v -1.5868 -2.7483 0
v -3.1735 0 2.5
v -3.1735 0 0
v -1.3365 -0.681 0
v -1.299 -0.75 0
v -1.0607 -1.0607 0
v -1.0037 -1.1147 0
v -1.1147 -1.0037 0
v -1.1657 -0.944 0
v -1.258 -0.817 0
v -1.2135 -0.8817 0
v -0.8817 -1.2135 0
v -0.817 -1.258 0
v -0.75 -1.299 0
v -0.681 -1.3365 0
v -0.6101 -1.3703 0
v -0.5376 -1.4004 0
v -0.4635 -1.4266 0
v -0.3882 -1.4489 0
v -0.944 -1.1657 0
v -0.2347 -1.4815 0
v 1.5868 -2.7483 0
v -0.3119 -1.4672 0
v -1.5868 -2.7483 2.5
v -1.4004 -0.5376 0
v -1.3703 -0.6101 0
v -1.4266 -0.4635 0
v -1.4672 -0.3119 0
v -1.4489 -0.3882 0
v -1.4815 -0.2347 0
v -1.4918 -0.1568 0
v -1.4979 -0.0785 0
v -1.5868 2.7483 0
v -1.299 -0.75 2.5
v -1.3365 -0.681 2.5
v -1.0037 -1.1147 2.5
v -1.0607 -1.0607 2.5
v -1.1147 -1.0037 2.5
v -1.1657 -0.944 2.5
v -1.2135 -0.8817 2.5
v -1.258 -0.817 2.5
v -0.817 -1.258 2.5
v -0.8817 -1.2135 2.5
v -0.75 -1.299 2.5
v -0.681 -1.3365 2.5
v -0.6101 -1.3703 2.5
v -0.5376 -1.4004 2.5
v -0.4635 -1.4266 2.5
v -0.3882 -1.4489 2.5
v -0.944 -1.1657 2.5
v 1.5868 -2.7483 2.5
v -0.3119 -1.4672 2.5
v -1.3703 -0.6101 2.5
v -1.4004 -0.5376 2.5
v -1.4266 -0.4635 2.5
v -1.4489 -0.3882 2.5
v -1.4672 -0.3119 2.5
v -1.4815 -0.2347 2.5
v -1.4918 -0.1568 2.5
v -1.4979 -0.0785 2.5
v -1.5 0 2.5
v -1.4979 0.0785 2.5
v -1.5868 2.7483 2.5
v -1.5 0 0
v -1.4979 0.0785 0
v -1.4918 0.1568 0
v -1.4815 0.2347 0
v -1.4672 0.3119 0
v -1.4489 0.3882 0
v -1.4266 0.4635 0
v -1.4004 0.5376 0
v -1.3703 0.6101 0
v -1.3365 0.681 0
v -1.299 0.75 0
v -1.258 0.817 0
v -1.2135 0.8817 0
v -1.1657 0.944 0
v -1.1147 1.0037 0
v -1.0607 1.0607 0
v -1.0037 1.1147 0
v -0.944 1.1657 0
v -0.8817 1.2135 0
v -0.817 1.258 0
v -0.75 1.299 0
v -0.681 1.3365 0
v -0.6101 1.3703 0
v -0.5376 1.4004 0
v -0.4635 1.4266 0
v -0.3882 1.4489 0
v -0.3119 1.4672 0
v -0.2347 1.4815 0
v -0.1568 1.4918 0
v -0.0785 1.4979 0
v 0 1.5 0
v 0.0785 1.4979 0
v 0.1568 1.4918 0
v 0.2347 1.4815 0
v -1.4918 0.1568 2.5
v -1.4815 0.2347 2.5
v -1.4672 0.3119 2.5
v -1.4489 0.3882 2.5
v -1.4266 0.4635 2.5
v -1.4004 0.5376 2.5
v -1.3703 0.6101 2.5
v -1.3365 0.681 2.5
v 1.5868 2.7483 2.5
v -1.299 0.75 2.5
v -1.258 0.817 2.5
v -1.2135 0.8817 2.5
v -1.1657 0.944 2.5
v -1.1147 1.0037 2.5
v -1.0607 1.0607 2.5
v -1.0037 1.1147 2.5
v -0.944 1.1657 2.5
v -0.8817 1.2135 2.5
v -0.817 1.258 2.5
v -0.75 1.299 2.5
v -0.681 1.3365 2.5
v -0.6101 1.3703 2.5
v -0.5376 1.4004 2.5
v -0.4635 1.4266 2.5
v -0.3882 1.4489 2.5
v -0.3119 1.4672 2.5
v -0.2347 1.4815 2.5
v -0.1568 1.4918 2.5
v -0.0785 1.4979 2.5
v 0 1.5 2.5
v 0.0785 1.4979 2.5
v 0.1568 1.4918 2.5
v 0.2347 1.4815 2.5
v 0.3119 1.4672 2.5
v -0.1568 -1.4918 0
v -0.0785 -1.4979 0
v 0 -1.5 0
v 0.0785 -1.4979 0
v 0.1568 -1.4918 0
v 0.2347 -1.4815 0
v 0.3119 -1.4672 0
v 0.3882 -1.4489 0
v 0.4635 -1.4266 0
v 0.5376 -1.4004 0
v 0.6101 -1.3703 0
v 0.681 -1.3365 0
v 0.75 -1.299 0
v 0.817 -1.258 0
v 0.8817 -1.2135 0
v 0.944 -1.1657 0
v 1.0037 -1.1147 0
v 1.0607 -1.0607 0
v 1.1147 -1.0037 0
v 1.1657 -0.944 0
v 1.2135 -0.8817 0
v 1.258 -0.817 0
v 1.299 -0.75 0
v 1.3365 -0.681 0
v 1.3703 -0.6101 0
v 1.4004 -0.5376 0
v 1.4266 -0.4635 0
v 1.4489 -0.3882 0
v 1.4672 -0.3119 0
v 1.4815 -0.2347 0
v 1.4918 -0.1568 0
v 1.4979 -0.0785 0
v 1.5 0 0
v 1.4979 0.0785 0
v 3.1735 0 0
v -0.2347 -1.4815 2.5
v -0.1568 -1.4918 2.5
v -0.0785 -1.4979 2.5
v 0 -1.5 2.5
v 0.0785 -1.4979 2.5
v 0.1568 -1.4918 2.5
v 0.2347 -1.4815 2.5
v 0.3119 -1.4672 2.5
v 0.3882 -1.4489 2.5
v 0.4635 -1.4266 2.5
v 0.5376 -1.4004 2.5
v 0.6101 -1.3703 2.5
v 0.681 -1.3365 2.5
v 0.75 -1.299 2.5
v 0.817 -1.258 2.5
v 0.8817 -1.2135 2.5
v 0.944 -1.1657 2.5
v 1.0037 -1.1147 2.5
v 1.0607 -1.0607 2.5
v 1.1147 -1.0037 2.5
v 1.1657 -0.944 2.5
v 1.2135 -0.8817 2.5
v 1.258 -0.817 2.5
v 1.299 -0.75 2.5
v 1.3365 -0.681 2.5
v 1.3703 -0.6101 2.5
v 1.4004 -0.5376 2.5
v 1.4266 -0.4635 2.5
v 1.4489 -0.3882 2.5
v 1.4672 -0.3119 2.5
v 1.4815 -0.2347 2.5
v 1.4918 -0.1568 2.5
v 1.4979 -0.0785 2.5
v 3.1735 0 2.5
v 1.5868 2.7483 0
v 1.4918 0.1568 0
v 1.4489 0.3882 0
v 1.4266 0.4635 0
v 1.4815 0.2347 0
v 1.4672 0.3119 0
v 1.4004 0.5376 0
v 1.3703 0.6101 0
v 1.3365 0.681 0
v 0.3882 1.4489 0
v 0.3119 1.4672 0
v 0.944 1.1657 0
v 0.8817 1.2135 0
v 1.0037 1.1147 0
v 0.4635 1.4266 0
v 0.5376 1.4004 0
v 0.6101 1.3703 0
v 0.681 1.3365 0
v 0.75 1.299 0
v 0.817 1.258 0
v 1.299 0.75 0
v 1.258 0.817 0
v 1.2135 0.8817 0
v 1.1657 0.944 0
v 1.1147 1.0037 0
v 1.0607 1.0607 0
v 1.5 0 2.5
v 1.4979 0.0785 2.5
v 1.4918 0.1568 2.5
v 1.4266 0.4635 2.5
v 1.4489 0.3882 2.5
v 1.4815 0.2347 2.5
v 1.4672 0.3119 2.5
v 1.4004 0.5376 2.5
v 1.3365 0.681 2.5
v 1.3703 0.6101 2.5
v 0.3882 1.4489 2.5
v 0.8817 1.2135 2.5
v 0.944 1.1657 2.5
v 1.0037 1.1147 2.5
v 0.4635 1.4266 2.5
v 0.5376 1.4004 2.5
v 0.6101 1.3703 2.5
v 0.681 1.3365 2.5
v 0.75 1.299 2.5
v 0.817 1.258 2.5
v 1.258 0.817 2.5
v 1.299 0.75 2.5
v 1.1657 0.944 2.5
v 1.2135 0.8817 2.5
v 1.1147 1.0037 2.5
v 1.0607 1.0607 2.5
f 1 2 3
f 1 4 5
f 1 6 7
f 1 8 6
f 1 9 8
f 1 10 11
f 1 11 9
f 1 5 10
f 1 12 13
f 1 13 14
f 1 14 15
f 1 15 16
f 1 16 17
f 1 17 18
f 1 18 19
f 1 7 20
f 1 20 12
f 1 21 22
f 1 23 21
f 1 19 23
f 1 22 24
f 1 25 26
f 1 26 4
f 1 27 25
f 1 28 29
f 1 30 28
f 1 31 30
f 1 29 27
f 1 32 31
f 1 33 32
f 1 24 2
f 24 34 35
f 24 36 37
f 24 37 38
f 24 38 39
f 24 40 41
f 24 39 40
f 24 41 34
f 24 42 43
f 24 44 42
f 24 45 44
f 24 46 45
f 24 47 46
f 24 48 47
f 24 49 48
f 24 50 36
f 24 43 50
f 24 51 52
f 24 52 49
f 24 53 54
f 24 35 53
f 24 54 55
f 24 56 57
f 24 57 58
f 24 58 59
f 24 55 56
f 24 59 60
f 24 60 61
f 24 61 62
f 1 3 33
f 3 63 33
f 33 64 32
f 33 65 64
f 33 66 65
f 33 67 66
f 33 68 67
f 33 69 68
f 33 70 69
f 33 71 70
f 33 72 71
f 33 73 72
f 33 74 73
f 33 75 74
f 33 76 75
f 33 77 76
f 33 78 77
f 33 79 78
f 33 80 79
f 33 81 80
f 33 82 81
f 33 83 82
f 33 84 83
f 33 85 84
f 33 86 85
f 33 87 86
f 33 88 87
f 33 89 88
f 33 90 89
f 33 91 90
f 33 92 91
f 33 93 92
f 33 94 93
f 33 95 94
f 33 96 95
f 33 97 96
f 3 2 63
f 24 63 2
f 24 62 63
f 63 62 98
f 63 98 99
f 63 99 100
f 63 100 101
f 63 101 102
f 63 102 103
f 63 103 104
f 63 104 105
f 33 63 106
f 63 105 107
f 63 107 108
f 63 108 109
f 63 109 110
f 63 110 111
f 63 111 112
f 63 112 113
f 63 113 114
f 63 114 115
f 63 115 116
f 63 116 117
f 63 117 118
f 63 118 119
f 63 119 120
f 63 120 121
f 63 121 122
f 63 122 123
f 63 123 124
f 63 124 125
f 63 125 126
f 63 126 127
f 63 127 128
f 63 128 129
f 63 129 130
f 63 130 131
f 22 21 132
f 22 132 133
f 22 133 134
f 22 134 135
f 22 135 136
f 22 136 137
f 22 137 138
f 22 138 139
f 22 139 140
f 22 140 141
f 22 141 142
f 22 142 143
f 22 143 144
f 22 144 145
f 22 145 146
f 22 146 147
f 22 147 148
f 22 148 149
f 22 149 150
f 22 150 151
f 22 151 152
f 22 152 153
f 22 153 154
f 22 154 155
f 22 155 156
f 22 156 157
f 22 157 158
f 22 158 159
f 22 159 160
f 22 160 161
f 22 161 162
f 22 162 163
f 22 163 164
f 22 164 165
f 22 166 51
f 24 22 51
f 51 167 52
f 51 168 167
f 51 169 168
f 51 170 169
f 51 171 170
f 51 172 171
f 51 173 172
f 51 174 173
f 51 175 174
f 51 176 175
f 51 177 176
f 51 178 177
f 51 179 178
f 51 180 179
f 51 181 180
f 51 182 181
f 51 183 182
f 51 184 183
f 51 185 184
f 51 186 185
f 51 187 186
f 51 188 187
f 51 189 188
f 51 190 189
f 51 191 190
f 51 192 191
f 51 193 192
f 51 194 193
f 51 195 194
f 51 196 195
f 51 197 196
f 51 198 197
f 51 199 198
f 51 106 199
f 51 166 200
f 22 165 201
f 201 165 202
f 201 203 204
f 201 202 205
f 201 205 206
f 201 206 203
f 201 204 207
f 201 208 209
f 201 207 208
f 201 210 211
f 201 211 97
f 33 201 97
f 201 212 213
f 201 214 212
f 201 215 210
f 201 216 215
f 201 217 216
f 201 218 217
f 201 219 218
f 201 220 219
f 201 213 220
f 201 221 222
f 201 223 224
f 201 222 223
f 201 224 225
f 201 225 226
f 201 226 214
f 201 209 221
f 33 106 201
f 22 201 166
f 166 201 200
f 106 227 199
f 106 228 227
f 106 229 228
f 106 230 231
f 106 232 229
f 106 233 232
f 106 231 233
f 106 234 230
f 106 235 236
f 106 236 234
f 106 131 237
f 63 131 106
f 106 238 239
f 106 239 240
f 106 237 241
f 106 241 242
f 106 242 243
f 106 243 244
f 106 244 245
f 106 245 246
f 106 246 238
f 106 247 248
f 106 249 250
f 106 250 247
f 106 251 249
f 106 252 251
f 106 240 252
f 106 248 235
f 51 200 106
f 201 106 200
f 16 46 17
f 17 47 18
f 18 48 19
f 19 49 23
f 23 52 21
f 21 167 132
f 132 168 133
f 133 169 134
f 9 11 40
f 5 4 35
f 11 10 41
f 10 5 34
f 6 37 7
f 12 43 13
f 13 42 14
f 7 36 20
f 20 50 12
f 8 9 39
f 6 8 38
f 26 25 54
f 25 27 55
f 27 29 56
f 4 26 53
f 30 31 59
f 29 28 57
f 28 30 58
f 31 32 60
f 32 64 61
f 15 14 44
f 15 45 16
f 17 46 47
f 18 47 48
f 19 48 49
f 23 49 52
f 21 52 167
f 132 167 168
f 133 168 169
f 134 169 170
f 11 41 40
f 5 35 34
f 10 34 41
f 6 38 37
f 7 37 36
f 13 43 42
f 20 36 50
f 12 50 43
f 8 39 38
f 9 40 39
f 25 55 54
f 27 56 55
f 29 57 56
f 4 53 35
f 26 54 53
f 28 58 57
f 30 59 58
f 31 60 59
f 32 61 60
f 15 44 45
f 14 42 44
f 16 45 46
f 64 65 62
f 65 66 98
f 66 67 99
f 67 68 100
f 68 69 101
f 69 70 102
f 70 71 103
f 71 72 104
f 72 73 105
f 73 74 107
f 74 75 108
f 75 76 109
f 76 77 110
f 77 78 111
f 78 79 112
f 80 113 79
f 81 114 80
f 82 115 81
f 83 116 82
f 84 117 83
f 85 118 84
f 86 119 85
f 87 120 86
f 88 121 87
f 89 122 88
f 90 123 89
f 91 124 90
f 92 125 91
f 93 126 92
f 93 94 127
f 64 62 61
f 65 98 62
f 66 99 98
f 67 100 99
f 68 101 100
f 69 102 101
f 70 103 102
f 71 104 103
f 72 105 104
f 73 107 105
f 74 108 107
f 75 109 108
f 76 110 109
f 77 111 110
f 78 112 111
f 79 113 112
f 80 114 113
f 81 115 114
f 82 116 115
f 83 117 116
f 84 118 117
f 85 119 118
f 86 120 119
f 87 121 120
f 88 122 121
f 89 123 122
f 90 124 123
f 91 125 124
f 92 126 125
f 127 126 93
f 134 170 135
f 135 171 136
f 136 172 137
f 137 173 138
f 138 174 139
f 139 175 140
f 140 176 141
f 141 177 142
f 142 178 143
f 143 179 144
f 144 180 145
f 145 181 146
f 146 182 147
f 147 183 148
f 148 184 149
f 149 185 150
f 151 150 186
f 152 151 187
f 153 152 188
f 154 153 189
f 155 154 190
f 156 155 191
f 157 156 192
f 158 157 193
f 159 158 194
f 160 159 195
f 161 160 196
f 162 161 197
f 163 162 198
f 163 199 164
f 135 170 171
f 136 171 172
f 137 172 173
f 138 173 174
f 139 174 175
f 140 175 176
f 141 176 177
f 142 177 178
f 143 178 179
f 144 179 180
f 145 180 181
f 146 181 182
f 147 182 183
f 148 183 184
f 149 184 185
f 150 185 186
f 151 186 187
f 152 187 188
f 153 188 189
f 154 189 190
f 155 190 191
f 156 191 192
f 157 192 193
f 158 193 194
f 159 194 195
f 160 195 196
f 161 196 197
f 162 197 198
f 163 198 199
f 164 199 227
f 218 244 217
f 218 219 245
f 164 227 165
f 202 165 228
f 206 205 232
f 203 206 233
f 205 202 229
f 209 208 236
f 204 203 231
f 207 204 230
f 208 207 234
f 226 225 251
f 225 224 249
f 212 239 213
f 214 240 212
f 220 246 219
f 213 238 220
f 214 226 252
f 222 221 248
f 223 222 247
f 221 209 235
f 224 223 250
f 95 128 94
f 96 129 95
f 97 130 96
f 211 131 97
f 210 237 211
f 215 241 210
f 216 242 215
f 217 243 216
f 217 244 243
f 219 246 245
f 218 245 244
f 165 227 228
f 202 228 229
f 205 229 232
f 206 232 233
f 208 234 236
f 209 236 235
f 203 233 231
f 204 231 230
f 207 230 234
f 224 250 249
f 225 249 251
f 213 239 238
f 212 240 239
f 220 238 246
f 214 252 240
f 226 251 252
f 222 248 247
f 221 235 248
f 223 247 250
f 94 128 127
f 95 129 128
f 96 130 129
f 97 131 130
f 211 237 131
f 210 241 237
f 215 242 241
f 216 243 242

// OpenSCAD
// file: C:/od/OneDrive/Documents/ChatGPT/oomlout_oobb_part_motor_gearbox_wave_drive_version_5/parts/oobb_part_motor_gearbox_wave_drive_version_5_12_to_1_reduction/compact_helpers.scad
// Reusable native geometry helpers.
function polar(r,a)=[r*cos(a),r*sin(a)];
function rotate_point(p,a)=[p[0]*cos(a)-p[1]*sin(a),p[0]*sin(a)+p[1]*cos(a)];
function profile_point(t)=let(
    s=sqrt(pow(pitch_radius,2)-pow(eccentricity*sin(cavity_count*t),2)),
    r=eccentricity*cos(cavity_count*t)+s,
    xi=atan2(eccentricity*cavity_count*sin(cavity_count*t),s),
    rr=roller_radius+profile_clearance)
    [r*cos(t)+rr*cos(t+xi),r*sin(t)+rr*sin(t+xi)];
function profile_points(upper=false)=[for(i=[0:cavity_count*profile_samples_per_cavity-1])
    rotate_point(profile_point(360*i/(cavity_count*profile_samples_per_cavity)),0)];
function roller_position(i,a,upper=false)=let(
    t=-a/roller_count+360*i/roller_count,
    rel=t-a-(upper?180:0),
    r=eccentricity*cos(rel)+sqrt(pow(pitch_radius,2)-pow(eccentricity*sin(rel),2))) polar(r,t);
module tube(ro,ri,h) { difference() { cylinder(r=ro,h=h); translate([0,0,-eps]) cylinder(r=ri,h=h+2*eps); } }
module screw_hole(size,h) { scale([1,1,h]) { if(size=="m2") oobb_hole_m2(); if(size=="m3") oobb_hole_m3(); if(size=="m6") oobb_hole_m6(); } }
module socket_recess(size,depth) {
    // OOBB socket head starts at the under-head plane and extends outward.
    scale([1,1,depth/(size=="m3"?3.2:2.2)]) {
        if(size=="m3") oobb_socket_m3(); else oobb_socket_m2();
    }
}
module at_mounts(points) { for(p=points) translate([p[0],p[1],0]) children(); }
module shaft_cut(h,fit=shaft_fit_clearance) {
    linear_extrude(h) intersection() {
        circle(r=input_shaft_diameter/2+fit);
        translate([-10,-10]) square([10+input_shaft_diameter/2-input_shaft_flat_depth+fit,20]);
    }
}
module rounded_rectangle_plate(size=[119,119,3],radius=1.5) {
    hull() for(x=[-1,1],y=[-1,1]) translate([x*(size[0]/2-radius),y*(size[1]/2-radius),0]) cylinder(r=radius,h=size[2]);
}
module grid_cuts(h) {
    // Actual OOBB grid centres: six units are centred on half-pitch offsets.
    for(i=[0:base_width-1],j=[0:base_height-1])
        let(x=(i-(base_width-1)/2)*oobb_grid_pitch,y=(j-(base_height-1)/2)*oobb_grid_pitch)
        if(sqrt(x*x+y*y)>housing_radius+3.5)
            translate([x,y,-eps]) screw_hole("m6",h+2*eps);
}
module wave_generator() {
    render(convexity=20) difference() {
        tube(wave_radius,12.6,wave_height);
        translate([0,0,wave_seat_z]) cylinder(r=13.5+bearing_seat_clearance,h=wave_height);
        translate([0,0,wave_height-wave_cap_depth]) cylinder(r=22.15,h=wave_cap_depth+eps);
        at_mounts(wave_mounts) {
            translate([0,0,-eps]) screw_hole("m3",wave_height+2*eps);
            translate([0,0,wave_nut_z]) scale([1,1,(wave_height-wave_cap_depth-wave_nut_z+eps)/2.7]) oobb_nut_m3();
        }
    }
}
module wave_cap() {
    render(convexity=20) difference() {
        tube(22,12.6,wave_cap_depth);
        at_mounts(wave_mounts) {
            translate([0,0,-eps]) screw_hole("m3",wave_cap_depth+2*eps);
            translate([0,0,wave_cap_depth-wave_head_recess]) socket_recess("m3",wave_head_recess+eps);
        }
    }
}
// file: C:/od/OneDrive/Documents/ChatGPT/oomlout_oobb_part_motor_gearbox_wave_drive_version_5/parts/oobb_part_motor_gearbox_wave_drive_version_5_12_to_1_reduction/oobb_hardware.scad
module oobb_rounded_rectangle_edges(size, radius, radius_top, radius_bottom) {
      rt=radius_top; rb=radius_bottom; depth=size[2]; n=16;
      lower=rb==0 ? [[radius,0]] :
        [for(i=[0:n]) let(a=-90+90*i/n) [radius-rb+rb*cos(a),rb+rb*sin(a)]];
      upper=rt==0 ? [[radius,depth]] :
        [for(i=[0:n]) let(a=90*i/n) [radius-rt+rt*cos(a),depth-rt+rt*sin(a)]];
      hull() for(x=[-size[0]/2+radius,size[0]/2-radius])
        for(y=[-size[1]/2+radius,size[1]/2-radius])
          translate([x,y,0]) rotate_extrude()
            polygon(concat([[0,0]],lower,upper,[[0,depth]]));
    }
// Generated from installed OOBB v5. All primitives use overhang=True.

module oobb_motor_plate_body() {


difference() {
	union() {
		translate(v = [0, 0, 0]) {
			rotate(a = [0, 0, 0]) {
				difference() {
					union() {
						oobb_rounded_rectangle_edges(radius = 1.5, radius_bottom = 1.5, radius_top = 1.5, size = [89.0, 89.0, 4.0]);
					}
					union();
				}
			}
		}
	}
	union();
}

}

module oobb_hole_m2() {


difference() {
	union() {
		cylinder(h = 1, r = 1.35);
	}
	union();
}

}

module oobb_hole_m3() {


difference() {
	union() {
		cylinder(h = 1, r = 1.8);
	}
	union();
}

}

module oobb_hole_m6() {


difference() {
	union() {
		cylinder(h = 1, r = 3.25);
	}
	union();
}

}

module oobb_nut_m2() {


difference() {
	union() {
		translate(v = [0, 0, 0]) {
			rotate(a = [0, 0, 0]) {
				difference() {
					union() {
						linear_extrude(height = 2.2) {
							polygon(points = [[2.4234, 0.0], [1.2117000000000002, 2.0987259635312085], [-1.2116999999999996, 2.0987259635312085], [-2.4234, 2.967809053053696e-16], [-1.211700000000001, -2.098725963531208], [1.2116999999999984, -2.0987259635312094]]);
						}
						translate(v = [-1.25, -2.75, -0.3]) {
							cube(size = [2.5, 5.5, 0.3]);
						}
						translate(v = [-1.25, -1.25, -0.6]) {
							cube(size = [2.5, 2.5, 0.3]);
						}
						translate(v = [-1.25, -2.75, 2.2]) {
							cube(size = [2.5, 5.5, 0.3]);
						}
						translate(v = [-1.25, -1.25, 2.5]) {
							cube(size = [2.5, 2.5, 0.3]);
						}
					}
					union();
				}
			}
		}
	}
	union();
}

}

module oobb_socket_m2() {


difference() {
	union() {
		translate(v = [0, 0, 0]) {
			rotate(a = [0, 0, 0]) {
				difference() {
					union() {
						cylinder(h = 2.2, r = 2.1);
						translate(v = [-1.25, -2.75, -0.3]) {
							cube(size = [2.5, 5.5, 0.3]);
						}
						translate(v = [-1.25, -1.25, -0.6]) {
							cube(size = [2.5, 2.5, 0.3]);
						}
					}
					union();
				}
			}
		}
	}
	union();
}

}

module oobb_nut_m3() {


difference() {
	union() {
		translate(v = [0, 0, 0]) {
			rotate(a = [0, 0, 0]) {
				difference() {
					union() {
						linear_extrude(height = 2.7) {
							polygon(points = [[3.4619999999999997, 0.0], [1.7310000000000003, 2.9981799479017264], [-1.7309999999999992, 2.9981799479017264], [-3.4619999999999997, 4.2397272186481365e-16], [-1.7310000000000014, -2.998179947901726], [1.7309999999999977, -2.9981799479017277]]);
						}
						translate(v = [-1.75, -3.25, -0.3]) {
							cube(size = [3.5, 6.5, 0.3]);
						}
						translate(v = [-1.75, -1.75, -0.6]) {
							cube(size = [3.5, 3.5, 0.3]);
						}
						translate(v = [-1.75, -3.25, 2.7]) {
							cube(size = [3.5, 6.5, 0.3]);
						}
						translate(v = [-1.75, -1.75, 3.0]) {
							cube(size = [3.5, 3.5, 0.3]);
						}
					}
					union();
				}
			}
		}
	}
	union();
}

}

module oobb_socket_m3() {


difference() {
	union() {
		translate(v = [0, 0, 0]) {
			rotate(a = [0, 0, 0]) {
				difference() {
					union() {
						cylinder(h = 3.2, r = 3.0);
						translate(v = [-1.75, -3.25, -0.3]) {
							cube(size = [3.5, 6.5, 0.3]);
						}
						translate(v = [-1.75, -1.75, -0.6]) {
							cube(size = [3.5, 3.5, 0.3]);
						}
					}
					union();
				}
			}
		}
	}
	union();
}

}

module oobb_nut_m6() {


difference() {
	union() {
		translate(v = [0, 0, 0]) {
			rotate(a = [0, 0, 0]) {
				difference() {
					union() {
						linear_extrude(height = 5.2) {
							polygon(points = [[5.914249999999999, 0.0], [2.957125, 5.1218907443321156], [-2.9571249999999982, 5.1218907443321156], [-5.914249999999999, 7.242867331857232e-16], [-2.9571250000000022, -5.121890744332115], [2.9571249999999956, -5.121890744332118]]);
						}
						translate(v = [-2.875, -5.0, -0.3]) {
							cube(size = [5.75, 10, 0.3]);
						}
						translate(v = [-2.875, -2.875, -0.6]) {
							cube(size = [5.75, 5.75, 0.3]);
						}
						translate(v = [-2.875, -5.0, 5.2]) {
							cube(size = [5.75, 10, 0.3]);
						}
						translate(v = [-2.875, -2.875, 5.5]) {
							cube(size = [5.75, 5.75, 0.3]);
						}
					}
					union();
				}
			}
		}
	}
	union();
}

}
// file: C:/od/OneDrive/Documents/ChatGPT/oomlout_oobb_part_motor_gearbox_wave_drive_version_5/parts/oobb_part_motor_gearbox_wave_drive_version_5_12_to_1_reduction/parameters.scad
// Generated by working_scad.py. Edit the Python recipe to persist changes.
style = "version_5";
reduction = 12;
bearing_output = "6810";
bearing_wave = "6704";
roller_diameter = 7.0;
roller_bore_diameter = 3.2;
roller_length = 12.0;
roller_material = "nylon";
roller_bank_count = 1;
motor_plate_depth = 4.0;
motor_body_depth = 40.0;
motor_shaft_length = 24.0;
motor_hole_pitch = 31.0;
motor_thread_depth = 6.0;
motor_pilot_diameter = 22.0;
motor_pilot_height = 2.0;
output_holder_wall = 7.0;
max_screw_length = 35.0;
eccentricity = 0.75;
wave_radius = 23.25;
profile_clearance = 0.15;
roller_slot_clearance = 0.3;
roller_end_clearance = 0.3;
cage_wall = 4.0;
cage_plate_depth = 3.0;
bearing_seat_clearance = 0.1;
journal_clearance = 0.05;
bearing_axial_clearance = 0.2;
output_plate_diameter = 65.0;
output_plate_depth = 6.0;
output_grid_pitch = 15.0;
output_face_clearance = 0.3;
output_socket_recess = 4.0;
output_screw_length = 16;
output_nut_depth = 5.2;
output_nut_height = 5.0;
motor_shaft_end_clearance = 0.5;
base_width = 6;
base_height = 6;
oobb_grid_pitch = 15.0;
oobb_size_allowance = 1.0;
base_edge_radius = 1.5;
housing_flange_corner_radius = 1.5;
housing_screw_pitch_radius = 35.5;
housing_screw_count = 6;
input_shaft_diameter = 5.0;
input_shaft_flat_depth = 0.5;
shaft_fit_clearance = 0.1;
cage_screw_count = 4;
profile_samples_per_cavity = 100;
circle_fragments = 120;
overhang = true;
run_scad = true;
run_solidcraft = false;
generate_stl = true;
generate_previews = true;
generate_renders = true;
validate_geometry = true;
package_outputs = true;
render_threads = 8;
variant = "default";
// main file
include <C:/od/OneDrive/Documents/ChatGPT/oomlout_oobb_part_motor_gearbox_wave_drive_version_5/parts/oobb_part_motor_gearbox_wave_drive_version_5_12_to_1_reduction/parameters.scad>
include <C:/od/OneDrive/Documents/ChatGPT/oomlout_oobb_part_motor_gearbox_wave_drive_version_5/parts/oobb_part_motor_gearbox_wave_drive_version_5_12_to_1_reduction/oobb_hardware.scad>
include <C:/od/OneDrive/Documents/ChatGPT/oomlout_oobb_part_motor_gearbox_wave_drive_version_5/parts/oobb_part_motor_gearbox_wave_drive_version_5_12_to_1_reduction/geometry.scad>
difference() { intersection() { difference() {
	union() {
		translate(v = [0, 0, 0]) {
			rotate(a = [0, 0, 0]) {
				difference() {
					union() {
						linear_extrude(height = 2.5) {
							polygon(points = [[3.1734999999999998, 0.0], [1.5867500000000003, 2.7483316189099156], [-1.5867499999999992, 2.748331618909916], [-3.1734999999999998, 3.886416617094125e-16], [-1.5867500000000012, -2.748331618909915], [1.5867499999999977, -2.748331618909917]]);
						}
					}
					union();
				}
			}
		}
	}
	union();
}
 translate([-5,-5,0]) cube([10,10,2.5]); } translate([0,0,-0.01]) cylinder(r=1.5,h=2.52); }
